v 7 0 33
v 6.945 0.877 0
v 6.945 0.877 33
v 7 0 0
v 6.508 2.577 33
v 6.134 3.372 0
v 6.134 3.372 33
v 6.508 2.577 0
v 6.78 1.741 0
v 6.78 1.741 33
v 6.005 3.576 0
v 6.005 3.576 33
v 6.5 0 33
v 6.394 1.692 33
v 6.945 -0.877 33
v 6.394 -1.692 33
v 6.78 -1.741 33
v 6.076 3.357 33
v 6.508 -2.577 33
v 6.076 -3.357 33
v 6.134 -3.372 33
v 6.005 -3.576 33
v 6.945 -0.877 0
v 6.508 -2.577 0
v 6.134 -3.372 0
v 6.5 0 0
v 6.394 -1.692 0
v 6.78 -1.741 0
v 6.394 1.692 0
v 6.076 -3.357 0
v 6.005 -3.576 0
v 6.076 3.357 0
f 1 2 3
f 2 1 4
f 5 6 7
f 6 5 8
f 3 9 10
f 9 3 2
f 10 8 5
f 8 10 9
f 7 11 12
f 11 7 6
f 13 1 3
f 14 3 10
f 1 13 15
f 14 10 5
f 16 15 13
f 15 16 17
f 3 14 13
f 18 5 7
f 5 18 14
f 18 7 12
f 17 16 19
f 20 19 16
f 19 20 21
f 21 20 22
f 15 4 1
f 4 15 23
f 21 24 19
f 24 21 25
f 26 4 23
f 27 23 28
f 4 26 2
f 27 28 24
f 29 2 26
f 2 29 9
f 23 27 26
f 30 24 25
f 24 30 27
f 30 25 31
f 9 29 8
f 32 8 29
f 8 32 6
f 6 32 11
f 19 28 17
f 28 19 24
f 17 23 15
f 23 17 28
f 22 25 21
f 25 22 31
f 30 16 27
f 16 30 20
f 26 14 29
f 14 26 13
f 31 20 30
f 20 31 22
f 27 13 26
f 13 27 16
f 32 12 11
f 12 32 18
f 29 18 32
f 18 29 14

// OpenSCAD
$fn = 50;


difference() {
	union() {
		cylinder(h = 33, r = 7.0000000000);
		translate(v = [-10.0000000000, 0, 0]) {
			cylinder(h = 33, r = 7.0000000000);
		}
	}
	union() {
		cylinder(h = 33, r = 3.2500000000);
		cylinder(h = 33, r = 1.8000000000);
		cylinder(h = 33, r = 1.8000000000);
		cylinder(h = 33, r = 1.8000000000);
		translate(v = [-14.5000000000, 0, 0]) {
			hull() {
				translate(v = [-3.7500000000, 0.0000000000, 0]) {
					cylinder(h = 33, r = 7.5000000000);
				}
				translate(v = [3.7500000000, 0.0000000000, 0]) {
					cylinder(h = 33, r = 7.5000000000);
				}
				translate(v = [-3.7500000000, -0.0000000000, 0]) {
					cylinder(h = 33, r = 7.5000000000);
				}
				translate(v = [3.7500000000, -0.0000000000, 0]) {
					cylinder(h = 33, r = 7.5000000000);
				}
			}
		}
		translate(v = [-7.0000000000, 0, 0.0000000000]) {
			cylinder(h = 33, r = 13.5000000000);
		}
	}
}
